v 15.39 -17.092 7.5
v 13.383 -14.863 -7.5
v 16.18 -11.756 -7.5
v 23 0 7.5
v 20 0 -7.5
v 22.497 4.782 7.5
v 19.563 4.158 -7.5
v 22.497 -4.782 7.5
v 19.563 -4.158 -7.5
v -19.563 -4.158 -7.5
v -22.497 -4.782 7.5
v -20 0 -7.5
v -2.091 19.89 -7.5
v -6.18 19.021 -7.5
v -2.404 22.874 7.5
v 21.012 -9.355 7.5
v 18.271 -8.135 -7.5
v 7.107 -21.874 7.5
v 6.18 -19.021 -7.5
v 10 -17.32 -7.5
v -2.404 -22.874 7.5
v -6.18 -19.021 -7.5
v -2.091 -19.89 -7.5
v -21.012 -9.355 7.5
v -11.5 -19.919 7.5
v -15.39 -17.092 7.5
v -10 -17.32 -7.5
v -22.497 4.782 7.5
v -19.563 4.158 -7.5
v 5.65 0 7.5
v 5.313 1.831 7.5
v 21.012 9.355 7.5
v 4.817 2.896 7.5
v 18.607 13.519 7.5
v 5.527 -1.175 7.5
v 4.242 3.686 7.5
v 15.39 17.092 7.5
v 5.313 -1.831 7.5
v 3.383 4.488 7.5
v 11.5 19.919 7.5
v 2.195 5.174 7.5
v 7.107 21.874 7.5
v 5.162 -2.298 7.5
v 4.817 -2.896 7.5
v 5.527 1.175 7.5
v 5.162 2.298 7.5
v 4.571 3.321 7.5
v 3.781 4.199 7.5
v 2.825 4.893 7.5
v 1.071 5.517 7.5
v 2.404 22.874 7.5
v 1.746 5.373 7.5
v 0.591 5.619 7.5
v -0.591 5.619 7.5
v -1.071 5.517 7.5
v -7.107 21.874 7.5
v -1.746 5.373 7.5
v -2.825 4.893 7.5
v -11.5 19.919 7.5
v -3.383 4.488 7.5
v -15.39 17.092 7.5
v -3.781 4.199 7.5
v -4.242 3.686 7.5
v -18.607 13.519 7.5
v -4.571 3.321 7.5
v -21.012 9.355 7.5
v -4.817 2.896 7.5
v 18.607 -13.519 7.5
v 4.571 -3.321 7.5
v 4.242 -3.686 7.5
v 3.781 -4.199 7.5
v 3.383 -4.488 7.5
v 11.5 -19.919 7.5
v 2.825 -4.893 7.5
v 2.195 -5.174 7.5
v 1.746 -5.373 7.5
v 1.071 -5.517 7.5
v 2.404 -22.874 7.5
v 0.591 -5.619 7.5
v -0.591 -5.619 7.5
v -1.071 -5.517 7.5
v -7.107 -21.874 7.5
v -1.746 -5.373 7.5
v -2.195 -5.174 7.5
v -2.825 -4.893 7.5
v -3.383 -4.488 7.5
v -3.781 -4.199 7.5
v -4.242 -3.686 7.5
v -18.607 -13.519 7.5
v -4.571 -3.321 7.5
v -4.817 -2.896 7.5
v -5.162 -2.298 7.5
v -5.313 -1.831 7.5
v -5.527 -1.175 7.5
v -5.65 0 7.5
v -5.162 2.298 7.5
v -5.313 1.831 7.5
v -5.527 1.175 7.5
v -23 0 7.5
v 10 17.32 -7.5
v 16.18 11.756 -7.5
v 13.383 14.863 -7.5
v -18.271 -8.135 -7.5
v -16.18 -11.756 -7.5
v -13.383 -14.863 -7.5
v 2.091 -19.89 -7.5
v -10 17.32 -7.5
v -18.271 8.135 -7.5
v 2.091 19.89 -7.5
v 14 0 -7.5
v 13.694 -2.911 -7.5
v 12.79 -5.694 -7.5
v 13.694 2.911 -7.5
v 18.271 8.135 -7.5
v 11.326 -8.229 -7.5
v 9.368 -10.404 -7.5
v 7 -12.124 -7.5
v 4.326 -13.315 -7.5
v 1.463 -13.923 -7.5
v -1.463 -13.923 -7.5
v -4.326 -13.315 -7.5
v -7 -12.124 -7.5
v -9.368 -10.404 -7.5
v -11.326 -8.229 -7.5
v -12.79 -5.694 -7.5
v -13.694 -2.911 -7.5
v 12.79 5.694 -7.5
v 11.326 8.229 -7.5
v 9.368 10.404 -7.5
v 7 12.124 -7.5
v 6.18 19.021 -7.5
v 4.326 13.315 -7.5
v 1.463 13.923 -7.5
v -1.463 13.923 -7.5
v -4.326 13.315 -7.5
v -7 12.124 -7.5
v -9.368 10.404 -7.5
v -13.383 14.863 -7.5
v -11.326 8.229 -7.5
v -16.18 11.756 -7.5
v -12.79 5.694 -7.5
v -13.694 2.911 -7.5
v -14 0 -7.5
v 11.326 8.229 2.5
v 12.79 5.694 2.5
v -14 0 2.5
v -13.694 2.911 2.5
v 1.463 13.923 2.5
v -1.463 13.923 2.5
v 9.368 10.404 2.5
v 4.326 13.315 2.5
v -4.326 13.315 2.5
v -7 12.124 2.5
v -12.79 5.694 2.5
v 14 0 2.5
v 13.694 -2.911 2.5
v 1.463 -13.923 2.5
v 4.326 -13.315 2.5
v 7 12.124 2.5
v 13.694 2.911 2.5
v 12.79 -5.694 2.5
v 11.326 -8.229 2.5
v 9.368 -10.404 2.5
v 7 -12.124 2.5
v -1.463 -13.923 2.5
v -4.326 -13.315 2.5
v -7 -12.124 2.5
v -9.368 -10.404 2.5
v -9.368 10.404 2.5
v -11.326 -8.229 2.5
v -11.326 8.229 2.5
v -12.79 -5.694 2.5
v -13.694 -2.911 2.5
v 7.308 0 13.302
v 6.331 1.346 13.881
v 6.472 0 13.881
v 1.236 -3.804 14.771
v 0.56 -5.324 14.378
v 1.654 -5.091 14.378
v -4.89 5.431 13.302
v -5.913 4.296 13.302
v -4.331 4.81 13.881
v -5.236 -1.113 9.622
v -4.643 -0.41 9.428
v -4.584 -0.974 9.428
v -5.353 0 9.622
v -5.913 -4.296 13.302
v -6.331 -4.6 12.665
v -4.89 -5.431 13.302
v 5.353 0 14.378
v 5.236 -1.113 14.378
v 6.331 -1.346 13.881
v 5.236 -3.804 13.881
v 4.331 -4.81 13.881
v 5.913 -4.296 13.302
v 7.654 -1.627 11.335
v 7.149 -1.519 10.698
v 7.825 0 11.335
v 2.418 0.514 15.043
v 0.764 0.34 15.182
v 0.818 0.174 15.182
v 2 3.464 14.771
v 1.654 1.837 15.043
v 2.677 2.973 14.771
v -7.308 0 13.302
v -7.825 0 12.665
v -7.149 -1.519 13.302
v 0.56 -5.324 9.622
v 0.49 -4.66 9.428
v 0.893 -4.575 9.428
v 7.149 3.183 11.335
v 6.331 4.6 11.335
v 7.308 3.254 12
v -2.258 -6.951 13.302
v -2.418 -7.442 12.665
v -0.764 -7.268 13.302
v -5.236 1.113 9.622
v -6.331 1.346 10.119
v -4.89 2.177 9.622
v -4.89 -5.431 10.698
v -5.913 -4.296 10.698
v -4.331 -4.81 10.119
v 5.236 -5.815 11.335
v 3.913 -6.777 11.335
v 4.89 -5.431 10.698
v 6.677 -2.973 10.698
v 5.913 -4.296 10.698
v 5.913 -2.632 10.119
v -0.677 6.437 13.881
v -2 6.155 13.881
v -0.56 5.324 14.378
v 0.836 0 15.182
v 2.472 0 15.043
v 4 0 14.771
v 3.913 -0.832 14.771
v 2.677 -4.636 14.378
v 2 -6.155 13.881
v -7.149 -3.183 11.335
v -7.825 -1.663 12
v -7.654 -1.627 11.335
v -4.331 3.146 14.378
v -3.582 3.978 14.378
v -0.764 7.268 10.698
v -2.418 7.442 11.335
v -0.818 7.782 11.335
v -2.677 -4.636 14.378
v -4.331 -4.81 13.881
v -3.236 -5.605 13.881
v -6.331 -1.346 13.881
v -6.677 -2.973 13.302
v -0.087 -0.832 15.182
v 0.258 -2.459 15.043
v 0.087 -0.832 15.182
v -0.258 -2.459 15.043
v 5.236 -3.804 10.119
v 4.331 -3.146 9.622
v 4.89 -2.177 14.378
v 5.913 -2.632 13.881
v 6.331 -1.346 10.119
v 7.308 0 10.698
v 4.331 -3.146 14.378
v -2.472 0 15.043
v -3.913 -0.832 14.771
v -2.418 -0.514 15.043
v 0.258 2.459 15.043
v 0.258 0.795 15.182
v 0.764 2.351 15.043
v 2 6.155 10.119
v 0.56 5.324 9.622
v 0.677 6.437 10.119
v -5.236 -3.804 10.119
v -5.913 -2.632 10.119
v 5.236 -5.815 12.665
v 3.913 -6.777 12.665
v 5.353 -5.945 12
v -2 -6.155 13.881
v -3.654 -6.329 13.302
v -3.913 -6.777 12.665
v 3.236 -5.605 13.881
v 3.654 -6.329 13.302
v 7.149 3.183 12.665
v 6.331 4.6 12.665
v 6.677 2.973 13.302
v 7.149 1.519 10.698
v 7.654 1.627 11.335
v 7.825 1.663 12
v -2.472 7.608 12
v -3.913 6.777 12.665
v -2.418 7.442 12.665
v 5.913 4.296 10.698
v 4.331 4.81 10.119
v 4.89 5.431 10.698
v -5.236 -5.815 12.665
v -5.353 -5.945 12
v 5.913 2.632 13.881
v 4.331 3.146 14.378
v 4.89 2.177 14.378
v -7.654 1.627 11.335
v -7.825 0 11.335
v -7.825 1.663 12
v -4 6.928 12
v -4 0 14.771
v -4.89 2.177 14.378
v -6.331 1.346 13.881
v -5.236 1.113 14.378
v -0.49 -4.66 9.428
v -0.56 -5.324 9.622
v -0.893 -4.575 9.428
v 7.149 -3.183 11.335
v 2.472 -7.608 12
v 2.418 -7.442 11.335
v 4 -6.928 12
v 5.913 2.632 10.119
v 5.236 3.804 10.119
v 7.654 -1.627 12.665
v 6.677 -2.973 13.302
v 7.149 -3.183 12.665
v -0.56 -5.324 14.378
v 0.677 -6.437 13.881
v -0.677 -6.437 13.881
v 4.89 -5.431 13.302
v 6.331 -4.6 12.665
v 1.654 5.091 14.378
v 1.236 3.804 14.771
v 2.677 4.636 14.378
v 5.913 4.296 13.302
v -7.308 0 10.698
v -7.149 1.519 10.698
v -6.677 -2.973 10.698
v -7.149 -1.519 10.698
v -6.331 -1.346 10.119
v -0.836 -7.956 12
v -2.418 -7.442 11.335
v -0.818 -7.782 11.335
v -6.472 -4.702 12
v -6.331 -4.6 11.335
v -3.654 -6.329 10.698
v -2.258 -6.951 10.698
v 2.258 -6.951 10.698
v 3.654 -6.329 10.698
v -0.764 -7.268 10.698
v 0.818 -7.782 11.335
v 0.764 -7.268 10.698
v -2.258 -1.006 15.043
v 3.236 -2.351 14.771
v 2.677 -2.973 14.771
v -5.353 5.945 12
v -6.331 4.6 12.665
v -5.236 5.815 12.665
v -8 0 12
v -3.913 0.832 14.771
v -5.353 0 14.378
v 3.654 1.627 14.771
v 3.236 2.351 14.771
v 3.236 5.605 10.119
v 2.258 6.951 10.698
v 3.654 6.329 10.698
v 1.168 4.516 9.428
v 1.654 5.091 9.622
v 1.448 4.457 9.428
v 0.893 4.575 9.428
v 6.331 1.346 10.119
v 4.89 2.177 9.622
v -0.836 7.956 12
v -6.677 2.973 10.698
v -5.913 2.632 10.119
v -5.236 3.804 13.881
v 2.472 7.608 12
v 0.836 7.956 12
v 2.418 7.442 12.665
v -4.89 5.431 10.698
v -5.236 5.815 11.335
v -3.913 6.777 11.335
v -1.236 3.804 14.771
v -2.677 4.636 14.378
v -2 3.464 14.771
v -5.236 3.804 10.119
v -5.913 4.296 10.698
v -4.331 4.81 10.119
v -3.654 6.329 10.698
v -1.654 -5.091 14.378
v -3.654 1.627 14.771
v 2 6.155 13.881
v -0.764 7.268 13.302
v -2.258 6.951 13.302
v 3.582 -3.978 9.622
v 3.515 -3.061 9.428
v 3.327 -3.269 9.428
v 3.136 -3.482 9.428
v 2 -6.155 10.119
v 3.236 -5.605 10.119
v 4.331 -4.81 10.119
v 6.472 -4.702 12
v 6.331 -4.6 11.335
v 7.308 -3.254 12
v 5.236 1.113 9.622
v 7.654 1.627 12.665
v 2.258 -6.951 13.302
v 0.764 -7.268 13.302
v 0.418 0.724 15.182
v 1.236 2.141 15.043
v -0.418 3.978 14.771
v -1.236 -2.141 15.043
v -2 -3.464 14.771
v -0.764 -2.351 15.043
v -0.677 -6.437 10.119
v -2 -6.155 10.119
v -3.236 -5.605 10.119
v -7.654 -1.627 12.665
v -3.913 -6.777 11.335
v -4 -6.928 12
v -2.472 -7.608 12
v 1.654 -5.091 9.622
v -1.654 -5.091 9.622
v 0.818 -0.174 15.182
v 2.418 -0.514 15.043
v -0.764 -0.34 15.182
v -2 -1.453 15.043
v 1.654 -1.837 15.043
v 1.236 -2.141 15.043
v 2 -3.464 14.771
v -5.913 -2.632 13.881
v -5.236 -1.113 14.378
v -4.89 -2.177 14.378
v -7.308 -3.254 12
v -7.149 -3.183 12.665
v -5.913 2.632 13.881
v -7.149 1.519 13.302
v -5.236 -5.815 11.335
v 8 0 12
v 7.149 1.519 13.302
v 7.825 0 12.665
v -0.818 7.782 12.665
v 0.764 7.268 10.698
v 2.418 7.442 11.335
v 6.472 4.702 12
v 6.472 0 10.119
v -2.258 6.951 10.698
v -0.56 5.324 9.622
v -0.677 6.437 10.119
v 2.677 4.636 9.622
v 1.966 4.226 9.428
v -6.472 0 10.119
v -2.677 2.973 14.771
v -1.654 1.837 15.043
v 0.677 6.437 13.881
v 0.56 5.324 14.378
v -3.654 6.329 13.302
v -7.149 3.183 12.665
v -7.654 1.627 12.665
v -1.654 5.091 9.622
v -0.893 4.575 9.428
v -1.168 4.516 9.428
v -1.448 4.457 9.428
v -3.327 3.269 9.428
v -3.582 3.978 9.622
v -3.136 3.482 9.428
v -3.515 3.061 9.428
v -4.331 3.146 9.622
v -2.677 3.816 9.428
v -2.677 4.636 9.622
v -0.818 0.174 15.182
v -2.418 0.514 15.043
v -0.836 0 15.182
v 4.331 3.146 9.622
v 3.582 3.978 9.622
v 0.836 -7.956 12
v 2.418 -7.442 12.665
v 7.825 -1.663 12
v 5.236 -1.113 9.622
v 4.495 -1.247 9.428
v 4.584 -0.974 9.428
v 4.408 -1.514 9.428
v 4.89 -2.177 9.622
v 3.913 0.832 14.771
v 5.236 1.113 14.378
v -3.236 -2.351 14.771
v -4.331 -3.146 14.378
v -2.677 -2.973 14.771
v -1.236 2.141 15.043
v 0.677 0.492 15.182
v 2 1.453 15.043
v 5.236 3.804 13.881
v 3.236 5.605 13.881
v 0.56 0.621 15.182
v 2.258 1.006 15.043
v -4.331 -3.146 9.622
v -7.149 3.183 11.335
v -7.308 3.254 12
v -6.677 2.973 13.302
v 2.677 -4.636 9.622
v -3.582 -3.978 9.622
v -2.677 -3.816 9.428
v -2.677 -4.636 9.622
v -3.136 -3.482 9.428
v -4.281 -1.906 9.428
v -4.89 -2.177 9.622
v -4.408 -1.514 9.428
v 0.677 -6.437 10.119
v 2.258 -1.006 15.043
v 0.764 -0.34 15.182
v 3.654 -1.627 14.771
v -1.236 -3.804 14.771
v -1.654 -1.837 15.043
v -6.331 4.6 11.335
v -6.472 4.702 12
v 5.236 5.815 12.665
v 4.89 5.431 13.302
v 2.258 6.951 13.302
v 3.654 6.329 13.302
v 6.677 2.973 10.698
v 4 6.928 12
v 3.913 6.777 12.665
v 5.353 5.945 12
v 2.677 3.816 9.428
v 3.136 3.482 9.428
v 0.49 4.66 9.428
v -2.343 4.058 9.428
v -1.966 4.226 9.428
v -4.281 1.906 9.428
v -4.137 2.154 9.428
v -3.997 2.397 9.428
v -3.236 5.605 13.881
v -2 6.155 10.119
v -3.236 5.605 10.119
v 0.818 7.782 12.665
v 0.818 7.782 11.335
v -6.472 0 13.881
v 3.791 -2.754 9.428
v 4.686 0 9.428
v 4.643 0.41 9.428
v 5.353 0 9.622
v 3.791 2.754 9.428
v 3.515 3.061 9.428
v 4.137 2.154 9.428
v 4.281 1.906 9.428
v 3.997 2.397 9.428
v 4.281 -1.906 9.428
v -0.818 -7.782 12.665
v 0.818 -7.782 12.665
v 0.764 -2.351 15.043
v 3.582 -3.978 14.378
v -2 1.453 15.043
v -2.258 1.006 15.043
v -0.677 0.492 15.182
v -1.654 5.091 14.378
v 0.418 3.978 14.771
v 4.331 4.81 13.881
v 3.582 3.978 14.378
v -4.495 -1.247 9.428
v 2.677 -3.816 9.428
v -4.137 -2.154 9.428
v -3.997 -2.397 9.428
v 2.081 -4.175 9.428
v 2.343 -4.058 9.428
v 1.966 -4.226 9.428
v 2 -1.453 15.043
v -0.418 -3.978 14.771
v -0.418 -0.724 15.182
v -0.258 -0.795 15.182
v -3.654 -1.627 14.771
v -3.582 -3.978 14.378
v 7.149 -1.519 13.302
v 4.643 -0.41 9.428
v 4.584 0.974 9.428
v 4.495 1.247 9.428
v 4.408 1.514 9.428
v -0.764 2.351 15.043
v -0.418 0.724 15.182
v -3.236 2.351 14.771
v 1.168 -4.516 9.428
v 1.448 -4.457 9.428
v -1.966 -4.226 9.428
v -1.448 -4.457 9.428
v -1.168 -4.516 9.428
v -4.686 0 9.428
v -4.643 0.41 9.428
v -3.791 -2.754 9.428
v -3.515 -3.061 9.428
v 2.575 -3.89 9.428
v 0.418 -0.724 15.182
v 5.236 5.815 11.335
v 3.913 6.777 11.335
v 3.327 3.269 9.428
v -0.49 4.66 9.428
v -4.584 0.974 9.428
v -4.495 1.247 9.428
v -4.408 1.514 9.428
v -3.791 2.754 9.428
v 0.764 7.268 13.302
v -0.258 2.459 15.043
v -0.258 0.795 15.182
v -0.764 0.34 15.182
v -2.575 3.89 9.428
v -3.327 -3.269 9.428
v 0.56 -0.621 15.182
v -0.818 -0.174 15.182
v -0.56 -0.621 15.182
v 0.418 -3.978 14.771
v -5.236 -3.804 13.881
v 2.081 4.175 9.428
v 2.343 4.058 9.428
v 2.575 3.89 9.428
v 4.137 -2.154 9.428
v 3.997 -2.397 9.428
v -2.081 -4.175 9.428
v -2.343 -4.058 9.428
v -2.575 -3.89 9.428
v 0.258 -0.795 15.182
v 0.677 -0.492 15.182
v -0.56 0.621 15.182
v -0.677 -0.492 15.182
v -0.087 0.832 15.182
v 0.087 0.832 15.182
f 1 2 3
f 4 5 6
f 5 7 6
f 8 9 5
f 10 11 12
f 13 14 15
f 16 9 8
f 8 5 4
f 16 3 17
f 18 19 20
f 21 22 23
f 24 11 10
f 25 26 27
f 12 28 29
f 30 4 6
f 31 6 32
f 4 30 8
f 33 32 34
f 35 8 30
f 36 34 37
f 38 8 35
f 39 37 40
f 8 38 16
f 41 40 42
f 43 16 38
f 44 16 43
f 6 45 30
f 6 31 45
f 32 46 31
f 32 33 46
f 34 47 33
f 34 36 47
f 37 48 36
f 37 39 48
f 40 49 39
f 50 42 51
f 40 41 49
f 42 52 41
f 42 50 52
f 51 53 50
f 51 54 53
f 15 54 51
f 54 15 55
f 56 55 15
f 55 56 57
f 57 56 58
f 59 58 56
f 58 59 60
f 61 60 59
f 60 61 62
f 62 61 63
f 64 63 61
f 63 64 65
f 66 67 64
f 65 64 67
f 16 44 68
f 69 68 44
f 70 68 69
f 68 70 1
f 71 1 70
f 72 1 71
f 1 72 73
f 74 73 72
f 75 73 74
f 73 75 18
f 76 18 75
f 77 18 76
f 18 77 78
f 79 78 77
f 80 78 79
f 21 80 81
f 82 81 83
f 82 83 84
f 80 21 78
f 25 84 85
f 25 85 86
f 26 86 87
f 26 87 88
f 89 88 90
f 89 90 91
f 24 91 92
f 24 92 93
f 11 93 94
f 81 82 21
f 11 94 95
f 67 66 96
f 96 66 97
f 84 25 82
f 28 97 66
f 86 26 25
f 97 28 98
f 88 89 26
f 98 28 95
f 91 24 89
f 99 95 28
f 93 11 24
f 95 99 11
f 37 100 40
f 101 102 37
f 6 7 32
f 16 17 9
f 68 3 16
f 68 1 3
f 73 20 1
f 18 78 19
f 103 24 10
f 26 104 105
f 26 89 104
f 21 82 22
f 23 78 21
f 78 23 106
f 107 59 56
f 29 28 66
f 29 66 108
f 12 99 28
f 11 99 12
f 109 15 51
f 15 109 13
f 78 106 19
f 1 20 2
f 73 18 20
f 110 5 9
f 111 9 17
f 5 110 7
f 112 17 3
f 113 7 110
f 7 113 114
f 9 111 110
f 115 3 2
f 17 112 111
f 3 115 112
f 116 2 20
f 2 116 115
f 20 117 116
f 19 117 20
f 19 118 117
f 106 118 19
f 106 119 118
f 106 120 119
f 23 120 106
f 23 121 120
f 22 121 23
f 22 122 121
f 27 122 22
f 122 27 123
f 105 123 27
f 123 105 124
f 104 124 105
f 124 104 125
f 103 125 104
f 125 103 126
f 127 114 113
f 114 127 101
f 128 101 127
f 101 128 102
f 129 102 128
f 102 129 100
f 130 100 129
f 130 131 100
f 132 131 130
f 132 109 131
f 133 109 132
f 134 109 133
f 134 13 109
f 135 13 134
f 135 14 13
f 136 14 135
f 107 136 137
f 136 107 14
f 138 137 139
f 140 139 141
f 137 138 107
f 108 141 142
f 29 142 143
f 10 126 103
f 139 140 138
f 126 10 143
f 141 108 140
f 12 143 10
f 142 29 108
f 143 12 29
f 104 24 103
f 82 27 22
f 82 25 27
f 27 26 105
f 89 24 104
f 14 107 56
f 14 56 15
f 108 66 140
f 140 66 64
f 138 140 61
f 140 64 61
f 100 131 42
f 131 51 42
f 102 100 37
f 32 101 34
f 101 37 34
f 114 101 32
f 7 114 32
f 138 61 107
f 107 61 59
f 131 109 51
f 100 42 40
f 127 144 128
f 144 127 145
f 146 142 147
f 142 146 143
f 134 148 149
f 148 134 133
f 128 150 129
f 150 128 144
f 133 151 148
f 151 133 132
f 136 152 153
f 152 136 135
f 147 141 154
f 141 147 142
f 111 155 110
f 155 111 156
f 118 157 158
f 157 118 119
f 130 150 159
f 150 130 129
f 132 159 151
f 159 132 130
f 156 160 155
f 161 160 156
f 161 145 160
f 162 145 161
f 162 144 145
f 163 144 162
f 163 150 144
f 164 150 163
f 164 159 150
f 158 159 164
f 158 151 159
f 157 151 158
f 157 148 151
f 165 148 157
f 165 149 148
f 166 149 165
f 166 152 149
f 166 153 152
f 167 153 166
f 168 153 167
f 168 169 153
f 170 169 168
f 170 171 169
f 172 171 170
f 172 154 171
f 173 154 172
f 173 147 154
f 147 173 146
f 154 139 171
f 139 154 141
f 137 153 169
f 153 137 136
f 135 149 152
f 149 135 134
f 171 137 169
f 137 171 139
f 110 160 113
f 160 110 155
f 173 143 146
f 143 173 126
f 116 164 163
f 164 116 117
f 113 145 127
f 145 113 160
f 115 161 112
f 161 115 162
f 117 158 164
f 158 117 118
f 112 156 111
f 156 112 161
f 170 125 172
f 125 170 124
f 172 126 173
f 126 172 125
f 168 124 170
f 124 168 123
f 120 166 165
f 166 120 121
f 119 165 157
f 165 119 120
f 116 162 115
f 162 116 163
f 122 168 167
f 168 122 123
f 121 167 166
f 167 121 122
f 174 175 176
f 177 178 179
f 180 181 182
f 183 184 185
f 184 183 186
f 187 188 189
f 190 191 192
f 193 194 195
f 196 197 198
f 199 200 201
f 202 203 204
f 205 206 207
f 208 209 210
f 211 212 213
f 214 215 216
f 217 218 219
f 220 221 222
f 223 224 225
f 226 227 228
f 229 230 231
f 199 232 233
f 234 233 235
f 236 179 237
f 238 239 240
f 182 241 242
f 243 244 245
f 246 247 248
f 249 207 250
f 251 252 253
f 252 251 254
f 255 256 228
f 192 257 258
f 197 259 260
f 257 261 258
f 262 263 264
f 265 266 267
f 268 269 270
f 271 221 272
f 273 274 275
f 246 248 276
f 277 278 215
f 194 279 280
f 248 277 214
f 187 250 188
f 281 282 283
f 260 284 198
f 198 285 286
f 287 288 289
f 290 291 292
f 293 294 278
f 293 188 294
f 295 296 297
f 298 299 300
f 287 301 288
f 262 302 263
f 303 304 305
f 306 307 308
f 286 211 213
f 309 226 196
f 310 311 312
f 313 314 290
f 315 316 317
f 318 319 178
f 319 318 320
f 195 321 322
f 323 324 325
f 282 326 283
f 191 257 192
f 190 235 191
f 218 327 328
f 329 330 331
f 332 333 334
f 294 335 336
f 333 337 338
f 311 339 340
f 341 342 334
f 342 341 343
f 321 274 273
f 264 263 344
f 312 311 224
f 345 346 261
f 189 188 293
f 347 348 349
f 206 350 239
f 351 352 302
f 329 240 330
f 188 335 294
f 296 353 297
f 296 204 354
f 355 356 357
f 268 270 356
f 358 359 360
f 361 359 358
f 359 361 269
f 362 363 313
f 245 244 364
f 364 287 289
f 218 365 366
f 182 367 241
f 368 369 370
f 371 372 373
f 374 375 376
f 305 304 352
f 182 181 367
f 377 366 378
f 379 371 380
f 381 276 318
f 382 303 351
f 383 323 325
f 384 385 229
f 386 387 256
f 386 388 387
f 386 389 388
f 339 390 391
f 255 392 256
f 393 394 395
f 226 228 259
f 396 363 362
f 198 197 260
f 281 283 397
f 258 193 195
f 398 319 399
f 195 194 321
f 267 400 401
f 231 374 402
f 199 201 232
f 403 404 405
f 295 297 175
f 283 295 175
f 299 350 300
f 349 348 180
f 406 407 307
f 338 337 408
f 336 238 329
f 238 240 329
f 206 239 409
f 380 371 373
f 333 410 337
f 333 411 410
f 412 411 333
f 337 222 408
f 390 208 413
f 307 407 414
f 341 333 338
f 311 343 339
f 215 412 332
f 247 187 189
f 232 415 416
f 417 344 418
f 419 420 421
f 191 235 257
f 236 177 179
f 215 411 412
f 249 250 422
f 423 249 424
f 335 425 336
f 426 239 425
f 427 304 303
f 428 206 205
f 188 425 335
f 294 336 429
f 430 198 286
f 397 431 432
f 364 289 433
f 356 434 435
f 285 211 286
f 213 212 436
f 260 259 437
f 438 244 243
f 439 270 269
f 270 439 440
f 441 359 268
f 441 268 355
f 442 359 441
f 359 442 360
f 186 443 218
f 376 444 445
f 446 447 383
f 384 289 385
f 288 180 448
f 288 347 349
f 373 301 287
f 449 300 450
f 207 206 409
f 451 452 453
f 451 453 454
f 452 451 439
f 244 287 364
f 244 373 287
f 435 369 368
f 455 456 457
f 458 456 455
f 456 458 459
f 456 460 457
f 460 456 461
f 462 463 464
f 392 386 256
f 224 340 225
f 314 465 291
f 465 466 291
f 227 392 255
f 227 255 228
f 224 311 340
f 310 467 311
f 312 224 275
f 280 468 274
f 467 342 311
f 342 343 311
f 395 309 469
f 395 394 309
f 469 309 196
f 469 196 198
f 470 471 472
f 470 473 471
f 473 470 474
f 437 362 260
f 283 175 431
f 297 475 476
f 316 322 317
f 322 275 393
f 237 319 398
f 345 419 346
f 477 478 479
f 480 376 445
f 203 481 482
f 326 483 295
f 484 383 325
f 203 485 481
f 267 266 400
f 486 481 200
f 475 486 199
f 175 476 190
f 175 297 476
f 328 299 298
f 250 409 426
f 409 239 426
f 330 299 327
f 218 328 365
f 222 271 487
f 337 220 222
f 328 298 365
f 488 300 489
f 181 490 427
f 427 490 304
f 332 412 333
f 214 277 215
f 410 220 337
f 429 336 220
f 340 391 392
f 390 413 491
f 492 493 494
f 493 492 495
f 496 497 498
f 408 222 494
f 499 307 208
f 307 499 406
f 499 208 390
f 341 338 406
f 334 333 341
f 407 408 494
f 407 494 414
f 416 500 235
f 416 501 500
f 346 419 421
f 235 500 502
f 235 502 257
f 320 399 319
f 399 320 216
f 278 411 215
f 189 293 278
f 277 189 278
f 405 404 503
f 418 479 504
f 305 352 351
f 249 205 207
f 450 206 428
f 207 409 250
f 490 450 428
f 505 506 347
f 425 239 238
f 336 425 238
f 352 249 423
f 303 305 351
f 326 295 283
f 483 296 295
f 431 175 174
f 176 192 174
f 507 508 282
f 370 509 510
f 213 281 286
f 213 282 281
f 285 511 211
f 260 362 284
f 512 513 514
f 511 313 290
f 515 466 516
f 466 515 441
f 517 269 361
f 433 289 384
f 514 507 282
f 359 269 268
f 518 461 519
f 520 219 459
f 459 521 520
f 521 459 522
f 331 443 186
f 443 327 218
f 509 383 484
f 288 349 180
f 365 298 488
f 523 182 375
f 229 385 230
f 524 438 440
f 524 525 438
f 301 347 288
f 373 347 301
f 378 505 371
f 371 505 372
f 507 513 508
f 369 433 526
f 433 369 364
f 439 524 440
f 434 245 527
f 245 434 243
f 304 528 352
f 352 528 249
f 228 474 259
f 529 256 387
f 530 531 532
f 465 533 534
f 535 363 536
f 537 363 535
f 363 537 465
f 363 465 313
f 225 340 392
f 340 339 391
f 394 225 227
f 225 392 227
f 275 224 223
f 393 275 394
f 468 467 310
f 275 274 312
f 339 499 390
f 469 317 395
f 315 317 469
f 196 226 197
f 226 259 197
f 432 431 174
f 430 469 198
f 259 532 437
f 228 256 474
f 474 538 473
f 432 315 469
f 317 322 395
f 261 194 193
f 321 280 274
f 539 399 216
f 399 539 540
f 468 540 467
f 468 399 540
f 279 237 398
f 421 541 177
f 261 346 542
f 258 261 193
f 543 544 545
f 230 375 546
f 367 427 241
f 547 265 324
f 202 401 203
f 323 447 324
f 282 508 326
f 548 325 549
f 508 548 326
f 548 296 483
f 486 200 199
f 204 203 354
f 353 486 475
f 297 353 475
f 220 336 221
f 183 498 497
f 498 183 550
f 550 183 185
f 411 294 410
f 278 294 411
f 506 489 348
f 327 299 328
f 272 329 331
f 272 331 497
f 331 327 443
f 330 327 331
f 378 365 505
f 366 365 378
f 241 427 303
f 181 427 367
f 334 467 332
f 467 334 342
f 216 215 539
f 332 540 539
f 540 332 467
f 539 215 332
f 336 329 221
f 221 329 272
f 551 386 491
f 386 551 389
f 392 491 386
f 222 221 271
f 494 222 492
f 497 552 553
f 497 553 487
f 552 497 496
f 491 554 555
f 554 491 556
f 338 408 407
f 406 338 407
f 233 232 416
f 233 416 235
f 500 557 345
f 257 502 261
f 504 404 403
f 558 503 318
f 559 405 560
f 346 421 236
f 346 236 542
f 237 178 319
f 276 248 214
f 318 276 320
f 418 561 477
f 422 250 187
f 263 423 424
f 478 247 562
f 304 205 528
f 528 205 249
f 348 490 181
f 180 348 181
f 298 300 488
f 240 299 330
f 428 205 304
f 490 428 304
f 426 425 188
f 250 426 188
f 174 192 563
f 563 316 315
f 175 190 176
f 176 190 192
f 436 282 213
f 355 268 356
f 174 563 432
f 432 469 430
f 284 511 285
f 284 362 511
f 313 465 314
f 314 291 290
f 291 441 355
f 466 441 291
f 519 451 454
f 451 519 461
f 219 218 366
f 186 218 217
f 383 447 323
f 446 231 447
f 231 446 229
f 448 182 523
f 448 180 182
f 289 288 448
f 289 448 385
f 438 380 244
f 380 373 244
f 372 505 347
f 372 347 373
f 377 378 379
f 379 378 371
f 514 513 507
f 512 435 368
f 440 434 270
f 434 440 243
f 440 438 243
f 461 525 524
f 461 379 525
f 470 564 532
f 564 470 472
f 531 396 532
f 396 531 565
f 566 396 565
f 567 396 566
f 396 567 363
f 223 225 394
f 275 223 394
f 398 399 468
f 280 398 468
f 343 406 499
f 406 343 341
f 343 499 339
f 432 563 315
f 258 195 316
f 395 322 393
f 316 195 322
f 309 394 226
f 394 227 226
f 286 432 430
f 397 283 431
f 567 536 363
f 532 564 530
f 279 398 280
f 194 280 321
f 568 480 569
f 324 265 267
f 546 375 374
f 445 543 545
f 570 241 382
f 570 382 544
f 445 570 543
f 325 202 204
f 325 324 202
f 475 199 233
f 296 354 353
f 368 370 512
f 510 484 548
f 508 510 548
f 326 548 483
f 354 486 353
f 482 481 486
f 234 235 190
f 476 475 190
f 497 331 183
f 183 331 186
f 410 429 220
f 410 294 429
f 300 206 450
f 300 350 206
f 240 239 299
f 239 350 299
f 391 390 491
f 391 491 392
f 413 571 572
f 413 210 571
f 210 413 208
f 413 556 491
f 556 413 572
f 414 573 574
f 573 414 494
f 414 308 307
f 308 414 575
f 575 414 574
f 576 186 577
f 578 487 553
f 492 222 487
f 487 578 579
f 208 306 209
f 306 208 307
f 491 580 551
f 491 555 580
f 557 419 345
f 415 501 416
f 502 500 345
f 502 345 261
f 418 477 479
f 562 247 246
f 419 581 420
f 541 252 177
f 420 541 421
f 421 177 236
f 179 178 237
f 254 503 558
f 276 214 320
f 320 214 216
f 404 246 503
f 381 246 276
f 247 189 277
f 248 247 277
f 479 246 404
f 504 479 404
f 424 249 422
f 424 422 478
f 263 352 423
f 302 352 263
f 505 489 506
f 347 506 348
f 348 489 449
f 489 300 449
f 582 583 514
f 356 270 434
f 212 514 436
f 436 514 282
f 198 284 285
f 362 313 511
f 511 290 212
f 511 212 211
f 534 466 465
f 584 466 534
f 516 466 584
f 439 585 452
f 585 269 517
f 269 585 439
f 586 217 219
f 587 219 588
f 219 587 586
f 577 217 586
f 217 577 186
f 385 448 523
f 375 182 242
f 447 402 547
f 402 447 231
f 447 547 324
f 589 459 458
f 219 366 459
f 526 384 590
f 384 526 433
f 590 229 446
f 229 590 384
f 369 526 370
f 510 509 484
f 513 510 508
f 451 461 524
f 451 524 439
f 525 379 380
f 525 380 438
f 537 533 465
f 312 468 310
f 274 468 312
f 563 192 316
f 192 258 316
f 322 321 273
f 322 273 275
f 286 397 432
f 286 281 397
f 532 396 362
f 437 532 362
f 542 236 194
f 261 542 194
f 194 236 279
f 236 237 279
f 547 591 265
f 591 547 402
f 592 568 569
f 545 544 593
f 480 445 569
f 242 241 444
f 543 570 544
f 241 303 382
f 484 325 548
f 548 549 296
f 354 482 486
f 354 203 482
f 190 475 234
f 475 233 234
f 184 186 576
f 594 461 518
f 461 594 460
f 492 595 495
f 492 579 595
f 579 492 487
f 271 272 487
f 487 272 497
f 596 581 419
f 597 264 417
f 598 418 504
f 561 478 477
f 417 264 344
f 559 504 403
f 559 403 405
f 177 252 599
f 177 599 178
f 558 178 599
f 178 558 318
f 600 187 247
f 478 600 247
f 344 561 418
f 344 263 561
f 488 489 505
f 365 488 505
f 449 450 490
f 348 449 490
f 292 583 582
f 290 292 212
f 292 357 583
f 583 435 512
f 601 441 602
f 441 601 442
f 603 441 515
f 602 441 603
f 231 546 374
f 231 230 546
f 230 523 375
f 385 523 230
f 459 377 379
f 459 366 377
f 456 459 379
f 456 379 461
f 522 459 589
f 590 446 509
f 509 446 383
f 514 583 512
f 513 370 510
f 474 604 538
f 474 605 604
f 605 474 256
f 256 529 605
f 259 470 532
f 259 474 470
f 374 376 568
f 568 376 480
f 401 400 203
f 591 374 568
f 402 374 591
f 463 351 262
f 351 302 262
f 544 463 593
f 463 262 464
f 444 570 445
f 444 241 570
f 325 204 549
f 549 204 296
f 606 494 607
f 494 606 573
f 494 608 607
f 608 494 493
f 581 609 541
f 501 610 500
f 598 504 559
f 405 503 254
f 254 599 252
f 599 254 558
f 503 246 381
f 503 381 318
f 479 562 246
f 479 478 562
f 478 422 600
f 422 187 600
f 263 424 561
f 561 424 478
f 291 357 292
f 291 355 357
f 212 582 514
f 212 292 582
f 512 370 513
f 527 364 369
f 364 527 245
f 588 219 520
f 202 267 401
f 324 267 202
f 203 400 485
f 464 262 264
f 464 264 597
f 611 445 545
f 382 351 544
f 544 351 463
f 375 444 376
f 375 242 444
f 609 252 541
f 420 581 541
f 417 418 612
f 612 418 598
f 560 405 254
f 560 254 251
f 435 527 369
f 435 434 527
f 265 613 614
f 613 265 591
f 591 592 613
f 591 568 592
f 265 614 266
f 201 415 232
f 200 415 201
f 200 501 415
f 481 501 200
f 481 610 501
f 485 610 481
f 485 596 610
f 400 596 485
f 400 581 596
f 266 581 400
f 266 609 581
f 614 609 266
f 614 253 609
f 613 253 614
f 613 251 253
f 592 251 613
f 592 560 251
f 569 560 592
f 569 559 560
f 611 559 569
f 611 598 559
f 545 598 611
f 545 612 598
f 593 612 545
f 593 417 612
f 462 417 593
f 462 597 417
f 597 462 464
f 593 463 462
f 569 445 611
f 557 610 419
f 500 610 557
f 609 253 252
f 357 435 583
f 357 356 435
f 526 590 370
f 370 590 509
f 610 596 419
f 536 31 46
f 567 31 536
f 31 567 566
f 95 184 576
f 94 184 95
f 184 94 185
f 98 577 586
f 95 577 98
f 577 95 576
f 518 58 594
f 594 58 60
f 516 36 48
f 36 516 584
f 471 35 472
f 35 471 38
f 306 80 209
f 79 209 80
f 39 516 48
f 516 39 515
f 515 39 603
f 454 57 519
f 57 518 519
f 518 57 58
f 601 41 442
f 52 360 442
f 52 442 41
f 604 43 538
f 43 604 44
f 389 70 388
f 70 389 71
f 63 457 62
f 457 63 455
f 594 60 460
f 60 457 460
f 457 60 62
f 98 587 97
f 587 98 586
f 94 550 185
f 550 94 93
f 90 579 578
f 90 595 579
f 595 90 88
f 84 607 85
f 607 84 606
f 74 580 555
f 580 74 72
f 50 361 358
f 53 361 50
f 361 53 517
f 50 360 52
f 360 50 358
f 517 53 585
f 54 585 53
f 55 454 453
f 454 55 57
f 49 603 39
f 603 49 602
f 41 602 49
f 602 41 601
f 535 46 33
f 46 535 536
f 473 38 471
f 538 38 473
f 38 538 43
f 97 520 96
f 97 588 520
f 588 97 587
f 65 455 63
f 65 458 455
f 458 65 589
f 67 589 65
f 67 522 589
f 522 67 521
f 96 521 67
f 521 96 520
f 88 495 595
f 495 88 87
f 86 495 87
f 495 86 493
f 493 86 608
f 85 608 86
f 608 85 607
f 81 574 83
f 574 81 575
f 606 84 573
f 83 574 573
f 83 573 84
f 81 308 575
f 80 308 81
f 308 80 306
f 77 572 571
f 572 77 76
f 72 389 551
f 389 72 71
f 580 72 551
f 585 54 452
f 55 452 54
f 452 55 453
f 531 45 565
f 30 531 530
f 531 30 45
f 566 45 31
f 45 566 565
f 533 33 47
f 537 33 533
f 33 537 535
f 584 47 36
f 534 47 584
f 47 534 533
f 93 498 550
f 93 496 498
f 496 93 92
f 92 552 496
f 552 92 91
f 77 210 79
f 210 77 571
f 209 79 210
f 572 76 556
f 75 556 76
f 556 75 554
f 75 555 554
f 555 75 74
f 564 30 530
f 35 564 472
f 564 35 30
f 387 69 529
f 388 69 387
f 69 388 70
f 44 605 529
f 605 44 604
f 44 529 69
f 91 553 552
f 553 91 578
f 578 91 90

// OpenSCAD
difference() {
	cylinder(r1=20,r2=23,h=15,center=true);
	translate([0,0,-2.5])
		cylinder(r=14,h=10,center=true);
}

translate([0,0,18]) {
	scale([4,4,4]) {
			translate([0,0,-1.5])
			scale([1.0,1.0,0.4])
			sphere(r=2,$fn=30);

			translate([0,0,-2.8])
			cylinder(r1=2,r2=1,h=2,$fn=30,center=true);
	}
}
